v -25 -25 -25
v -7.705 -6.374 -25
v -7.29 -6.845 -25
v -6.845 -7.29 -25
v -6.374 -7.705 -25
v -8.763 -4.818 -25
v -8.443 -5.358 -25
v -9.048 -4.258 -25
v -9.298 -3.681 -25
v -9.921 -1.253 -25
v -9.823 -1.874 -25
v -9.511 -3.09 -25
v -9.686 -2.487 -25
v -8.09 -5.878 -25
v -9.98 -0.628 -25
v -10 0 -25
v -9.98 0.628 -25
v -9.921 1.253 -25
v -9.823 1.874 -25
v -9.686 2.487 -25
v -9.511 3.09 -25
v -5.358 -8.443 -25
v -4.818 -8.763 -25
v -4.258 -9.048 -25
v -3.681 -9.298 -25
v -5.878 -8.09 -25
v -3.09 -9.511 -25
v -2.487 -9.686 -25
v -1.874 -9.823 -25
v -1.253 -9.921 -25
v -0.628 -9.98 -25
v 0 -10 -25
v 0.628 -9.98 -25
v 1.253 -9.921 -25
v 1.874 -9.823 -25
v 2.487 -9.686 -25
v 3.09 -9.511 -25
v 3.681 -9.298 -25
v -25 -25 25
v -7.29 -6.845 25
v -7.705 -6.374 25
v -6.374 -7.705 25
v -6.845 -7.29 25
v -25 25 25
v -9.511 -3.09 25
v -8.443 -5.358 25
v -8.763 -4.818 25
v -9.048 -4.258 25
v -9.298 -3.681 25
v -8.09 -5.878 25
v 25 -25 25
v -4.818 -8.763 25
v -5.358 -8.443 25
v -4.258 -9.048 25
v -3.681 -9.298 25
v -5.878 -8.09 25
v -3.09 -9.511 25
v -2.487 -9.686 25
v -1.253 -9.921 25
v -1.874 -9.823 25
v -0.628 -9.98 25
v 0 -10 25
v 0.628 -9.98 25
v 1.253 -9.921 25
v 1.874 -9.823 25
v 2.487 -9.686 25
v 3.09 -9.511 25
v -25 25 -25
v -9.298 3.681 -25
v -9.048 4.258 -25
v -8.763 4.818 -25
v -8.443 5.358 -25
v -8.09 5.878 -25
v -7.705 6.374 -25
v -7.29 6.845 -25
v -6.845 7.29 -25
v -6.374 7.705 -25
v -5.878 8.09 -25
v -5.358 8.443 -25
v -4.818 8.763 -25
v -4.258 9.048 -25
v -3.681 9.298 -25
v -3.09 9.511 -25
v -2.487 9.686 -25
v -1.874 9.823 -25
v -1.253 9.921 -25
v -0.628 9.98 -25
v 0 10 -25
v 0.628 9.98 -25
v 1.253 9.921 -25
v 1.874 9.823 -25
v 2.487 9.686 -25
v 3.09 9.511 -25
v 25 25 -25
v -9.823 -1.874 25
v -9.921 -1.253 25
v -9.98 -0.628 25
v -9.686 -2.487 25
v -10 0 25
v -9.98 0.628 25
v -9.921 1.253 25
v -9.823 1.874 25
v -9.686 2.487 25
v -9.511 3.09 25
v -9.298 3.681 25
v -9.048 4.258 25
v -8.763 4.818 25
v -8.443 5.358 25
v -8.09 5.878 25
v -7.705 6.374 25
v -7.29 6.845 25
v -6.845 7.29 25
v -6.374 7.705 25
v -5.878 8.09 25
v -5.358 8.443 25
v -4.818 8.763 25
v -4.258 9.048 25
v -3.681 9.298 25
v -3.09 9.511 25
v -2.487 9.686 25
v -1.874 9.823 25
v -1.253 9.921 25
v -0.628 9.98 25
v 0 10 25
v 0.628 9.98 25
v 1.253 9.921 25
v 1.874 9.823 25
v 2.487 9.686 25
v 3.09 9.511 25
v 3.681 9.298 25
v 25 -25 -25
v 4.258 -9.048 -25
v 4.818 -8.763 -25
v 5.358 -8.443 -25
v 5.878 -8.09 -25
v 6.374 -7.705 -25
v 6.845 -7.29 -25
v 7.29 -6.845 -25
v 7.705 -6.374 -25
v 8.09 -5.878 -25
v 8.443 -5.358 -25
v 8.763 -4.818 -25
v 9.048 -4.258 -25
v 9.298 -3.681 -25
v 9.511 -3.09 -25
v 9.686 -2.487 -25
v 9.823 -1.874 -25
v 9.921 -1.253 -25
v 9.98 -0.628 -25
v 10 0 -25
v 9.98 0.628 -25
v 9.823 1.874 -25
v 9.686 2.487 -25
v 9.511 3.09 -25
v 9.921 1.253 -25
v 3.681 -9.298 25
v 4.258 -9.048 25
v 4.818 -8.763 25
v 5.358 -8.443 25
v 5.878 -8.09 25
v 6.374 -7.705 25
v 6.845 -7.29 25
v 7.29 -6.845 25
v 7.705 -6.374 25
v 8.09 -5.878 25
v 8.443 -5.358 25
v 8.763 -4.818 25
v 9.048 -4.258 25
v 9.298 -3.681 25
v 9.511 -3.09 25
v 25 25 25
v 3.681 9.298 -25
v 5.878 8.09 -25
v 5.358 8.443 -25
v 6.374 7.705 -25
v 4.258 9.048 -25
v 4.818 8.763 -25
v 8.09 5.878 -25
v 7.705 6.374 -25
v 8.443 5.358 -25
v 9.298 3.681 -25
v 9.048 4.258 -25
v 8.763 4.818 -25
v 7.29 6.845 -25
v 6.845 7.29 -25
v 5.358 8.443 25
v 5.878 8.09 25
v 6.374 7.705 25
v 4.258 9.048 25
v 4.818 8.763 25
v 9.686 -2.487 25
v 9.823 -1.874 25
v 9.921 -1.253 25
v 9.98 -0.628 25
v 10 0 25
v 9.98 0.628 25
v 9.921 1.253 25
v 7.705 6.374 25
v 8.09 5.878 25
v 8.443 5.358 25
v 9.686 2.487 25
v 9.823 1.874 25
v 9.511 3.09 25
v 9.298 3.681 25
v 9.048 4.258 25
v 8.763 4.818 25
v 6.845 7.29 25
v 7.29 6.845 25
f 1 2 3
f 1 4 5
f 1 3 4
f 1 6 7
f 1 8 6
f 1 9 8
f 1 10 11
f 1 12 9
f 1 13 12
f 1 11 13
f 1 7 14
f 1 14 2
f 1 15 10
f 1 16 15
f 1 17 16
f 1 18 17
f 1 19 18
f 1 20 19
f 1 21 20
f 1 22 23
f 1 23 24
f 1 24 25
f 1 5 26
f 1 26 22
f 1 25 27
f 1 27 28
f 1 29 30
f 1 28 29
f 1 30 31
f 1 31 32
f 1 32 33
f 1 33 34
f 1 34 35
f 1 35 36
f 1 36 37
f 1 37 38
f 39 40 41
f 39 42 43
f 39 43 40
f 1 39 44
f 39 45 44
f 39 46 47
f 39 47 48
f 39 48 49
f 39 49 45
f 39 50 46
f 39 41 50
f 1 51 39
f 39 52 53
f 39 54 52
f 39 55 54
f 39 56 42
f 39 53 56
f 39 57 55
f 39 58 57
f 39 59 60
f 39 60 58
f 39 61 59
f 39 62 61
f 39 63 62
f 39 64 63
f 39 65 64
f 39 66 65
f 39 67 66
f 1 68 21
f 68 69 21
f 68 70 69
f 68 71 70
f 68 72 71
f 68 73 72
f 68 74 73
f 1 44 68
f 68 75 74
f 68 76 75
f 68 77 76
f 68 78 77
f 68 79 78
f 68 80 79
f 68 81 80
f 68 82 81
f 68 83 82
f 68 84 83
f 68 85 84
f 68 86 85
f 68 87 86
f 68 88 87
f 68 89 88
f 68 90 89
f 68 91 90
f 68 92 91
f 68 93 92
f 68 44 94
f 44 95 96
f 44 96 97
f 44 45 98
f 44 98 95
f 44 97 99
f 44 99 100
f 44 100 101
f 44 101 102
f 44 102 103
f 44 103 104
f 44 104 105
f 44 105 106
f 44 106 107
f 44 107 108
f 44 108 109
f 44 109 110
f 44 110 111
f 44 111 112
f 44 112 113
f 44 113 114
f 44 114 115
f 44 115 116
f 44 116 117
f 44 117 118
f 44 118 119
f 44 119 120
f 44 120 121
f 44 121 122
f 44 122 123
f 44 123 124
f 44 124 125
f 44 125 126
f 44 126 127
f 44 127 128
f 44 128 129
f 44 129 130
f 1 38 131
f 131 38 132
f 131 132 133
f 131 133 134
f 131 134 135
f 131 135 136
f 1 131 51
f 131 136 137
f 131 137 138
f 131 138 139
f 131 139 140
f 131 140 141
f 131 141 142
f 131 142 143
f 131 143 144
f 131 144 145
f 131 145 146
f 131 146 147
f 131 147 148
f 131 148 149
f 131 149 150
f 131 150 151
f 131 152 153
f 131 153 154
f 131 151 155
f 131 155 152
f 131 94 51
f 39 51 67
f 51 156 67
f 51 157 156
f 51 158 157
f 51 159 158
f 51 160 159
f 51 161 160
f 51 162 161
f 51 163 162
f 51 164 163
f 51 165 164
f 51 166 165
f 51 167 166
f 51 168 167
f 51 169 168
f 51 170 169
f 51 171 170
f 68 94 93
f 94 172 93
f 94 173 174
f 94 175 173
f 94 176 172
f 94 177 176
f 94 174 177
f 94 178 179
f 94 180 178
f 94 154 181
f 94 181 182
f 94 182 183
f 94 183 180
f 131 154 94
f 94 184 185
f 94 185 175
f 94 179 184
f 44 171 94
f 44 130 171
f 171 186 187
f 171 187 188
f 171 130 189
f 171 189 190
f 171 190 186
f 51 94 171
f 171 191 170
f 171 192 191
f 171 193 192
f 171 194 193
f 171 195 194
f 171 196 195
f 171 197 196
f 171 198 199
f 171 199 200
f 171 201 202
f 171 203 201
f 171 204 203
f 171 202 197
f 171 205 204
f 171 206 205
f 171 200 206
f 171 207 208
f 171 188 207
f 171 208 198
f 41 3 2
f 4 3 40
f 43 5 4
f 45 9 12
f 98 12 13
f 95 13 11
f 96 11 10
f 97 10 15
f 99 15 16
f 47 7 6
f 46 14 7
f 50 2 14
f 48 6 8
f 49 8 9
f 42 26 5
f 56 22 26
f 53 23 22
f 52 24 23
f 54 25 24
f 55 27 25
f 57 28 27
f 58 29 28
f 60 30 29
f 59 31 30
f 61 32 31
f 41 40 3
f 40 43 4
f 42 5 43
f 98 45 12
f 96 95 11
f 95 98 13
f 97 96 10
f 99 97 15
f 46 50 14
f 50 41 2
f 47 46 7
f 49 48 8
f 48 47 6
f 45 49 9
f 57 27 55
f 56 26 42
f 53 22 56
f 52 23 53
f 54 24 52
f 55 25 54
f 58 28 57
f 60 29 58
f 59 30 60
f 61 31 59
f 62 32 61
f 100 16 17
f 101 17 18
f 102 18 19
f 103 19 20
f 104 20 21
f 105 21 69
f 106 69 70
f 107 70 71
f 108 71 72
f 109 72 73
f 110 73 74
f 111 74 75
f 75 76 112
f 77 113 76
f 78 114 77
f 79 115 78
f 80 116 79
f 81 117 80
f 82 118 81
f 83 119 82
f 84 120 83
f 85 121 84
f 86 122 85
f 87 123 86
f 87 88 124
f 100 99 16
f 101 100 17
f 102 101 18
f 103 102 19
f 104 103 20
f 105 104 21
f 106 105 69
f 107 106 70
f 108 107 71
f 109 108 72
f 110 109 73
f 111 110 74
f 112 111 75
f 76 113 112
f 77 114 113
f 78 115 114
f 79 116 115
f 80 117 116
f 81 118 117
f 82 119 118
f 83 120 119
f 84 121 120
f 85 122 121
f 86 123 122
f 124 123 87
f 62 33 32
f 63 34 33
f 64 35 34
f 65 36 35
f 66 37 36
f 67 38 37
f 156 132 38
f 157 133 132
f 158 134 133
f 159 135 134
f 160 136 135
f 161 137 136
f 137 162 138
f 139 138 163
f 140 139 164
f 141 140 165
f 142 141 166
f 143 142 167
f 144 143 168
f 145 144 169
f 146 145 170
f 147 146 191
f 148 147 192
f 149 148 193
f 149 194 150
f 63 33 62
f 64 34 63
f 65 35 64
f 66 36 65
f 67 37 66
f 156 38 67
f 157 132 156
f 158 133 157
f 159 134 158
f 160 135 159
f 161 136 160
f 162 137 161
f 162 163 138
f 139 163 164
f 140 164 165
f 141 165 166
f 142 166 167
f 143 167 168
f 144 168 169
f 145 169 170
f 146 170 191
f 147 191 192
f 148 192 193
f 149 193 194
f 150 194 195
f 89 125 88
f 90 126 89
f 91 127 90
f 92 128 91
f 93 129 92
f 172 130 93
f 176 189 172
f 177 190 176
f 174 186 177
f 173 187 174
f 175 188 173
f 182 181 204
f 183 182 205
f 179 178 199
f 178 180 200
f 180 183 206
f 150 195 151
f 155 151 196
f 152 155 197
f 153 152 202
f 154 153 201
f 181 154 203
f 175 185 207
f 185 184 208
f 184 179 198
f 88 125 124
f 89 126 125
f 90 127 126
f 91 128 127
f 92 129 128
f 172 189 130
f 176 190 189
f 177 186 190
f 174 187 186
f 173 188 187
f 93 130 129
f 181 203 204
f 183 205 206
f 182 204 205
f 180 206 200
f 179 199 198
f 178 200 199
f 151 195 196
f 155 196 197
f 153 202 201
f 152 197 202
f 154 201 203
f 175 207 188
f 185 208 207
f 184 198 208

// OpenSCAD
$fn = 100;

difference() {
    // 50mm角の立方体（中心を原点に配置）
    cube([50, 50, 50], center = true);
    
    // 直径20mm（半径10mm）の貫通穴
    // チラつき（Z-fighting）を防ぐため、高さ方向に少し大きく（52mm）しています
    cylinder(h = 52, r = 10, center = true);
}
